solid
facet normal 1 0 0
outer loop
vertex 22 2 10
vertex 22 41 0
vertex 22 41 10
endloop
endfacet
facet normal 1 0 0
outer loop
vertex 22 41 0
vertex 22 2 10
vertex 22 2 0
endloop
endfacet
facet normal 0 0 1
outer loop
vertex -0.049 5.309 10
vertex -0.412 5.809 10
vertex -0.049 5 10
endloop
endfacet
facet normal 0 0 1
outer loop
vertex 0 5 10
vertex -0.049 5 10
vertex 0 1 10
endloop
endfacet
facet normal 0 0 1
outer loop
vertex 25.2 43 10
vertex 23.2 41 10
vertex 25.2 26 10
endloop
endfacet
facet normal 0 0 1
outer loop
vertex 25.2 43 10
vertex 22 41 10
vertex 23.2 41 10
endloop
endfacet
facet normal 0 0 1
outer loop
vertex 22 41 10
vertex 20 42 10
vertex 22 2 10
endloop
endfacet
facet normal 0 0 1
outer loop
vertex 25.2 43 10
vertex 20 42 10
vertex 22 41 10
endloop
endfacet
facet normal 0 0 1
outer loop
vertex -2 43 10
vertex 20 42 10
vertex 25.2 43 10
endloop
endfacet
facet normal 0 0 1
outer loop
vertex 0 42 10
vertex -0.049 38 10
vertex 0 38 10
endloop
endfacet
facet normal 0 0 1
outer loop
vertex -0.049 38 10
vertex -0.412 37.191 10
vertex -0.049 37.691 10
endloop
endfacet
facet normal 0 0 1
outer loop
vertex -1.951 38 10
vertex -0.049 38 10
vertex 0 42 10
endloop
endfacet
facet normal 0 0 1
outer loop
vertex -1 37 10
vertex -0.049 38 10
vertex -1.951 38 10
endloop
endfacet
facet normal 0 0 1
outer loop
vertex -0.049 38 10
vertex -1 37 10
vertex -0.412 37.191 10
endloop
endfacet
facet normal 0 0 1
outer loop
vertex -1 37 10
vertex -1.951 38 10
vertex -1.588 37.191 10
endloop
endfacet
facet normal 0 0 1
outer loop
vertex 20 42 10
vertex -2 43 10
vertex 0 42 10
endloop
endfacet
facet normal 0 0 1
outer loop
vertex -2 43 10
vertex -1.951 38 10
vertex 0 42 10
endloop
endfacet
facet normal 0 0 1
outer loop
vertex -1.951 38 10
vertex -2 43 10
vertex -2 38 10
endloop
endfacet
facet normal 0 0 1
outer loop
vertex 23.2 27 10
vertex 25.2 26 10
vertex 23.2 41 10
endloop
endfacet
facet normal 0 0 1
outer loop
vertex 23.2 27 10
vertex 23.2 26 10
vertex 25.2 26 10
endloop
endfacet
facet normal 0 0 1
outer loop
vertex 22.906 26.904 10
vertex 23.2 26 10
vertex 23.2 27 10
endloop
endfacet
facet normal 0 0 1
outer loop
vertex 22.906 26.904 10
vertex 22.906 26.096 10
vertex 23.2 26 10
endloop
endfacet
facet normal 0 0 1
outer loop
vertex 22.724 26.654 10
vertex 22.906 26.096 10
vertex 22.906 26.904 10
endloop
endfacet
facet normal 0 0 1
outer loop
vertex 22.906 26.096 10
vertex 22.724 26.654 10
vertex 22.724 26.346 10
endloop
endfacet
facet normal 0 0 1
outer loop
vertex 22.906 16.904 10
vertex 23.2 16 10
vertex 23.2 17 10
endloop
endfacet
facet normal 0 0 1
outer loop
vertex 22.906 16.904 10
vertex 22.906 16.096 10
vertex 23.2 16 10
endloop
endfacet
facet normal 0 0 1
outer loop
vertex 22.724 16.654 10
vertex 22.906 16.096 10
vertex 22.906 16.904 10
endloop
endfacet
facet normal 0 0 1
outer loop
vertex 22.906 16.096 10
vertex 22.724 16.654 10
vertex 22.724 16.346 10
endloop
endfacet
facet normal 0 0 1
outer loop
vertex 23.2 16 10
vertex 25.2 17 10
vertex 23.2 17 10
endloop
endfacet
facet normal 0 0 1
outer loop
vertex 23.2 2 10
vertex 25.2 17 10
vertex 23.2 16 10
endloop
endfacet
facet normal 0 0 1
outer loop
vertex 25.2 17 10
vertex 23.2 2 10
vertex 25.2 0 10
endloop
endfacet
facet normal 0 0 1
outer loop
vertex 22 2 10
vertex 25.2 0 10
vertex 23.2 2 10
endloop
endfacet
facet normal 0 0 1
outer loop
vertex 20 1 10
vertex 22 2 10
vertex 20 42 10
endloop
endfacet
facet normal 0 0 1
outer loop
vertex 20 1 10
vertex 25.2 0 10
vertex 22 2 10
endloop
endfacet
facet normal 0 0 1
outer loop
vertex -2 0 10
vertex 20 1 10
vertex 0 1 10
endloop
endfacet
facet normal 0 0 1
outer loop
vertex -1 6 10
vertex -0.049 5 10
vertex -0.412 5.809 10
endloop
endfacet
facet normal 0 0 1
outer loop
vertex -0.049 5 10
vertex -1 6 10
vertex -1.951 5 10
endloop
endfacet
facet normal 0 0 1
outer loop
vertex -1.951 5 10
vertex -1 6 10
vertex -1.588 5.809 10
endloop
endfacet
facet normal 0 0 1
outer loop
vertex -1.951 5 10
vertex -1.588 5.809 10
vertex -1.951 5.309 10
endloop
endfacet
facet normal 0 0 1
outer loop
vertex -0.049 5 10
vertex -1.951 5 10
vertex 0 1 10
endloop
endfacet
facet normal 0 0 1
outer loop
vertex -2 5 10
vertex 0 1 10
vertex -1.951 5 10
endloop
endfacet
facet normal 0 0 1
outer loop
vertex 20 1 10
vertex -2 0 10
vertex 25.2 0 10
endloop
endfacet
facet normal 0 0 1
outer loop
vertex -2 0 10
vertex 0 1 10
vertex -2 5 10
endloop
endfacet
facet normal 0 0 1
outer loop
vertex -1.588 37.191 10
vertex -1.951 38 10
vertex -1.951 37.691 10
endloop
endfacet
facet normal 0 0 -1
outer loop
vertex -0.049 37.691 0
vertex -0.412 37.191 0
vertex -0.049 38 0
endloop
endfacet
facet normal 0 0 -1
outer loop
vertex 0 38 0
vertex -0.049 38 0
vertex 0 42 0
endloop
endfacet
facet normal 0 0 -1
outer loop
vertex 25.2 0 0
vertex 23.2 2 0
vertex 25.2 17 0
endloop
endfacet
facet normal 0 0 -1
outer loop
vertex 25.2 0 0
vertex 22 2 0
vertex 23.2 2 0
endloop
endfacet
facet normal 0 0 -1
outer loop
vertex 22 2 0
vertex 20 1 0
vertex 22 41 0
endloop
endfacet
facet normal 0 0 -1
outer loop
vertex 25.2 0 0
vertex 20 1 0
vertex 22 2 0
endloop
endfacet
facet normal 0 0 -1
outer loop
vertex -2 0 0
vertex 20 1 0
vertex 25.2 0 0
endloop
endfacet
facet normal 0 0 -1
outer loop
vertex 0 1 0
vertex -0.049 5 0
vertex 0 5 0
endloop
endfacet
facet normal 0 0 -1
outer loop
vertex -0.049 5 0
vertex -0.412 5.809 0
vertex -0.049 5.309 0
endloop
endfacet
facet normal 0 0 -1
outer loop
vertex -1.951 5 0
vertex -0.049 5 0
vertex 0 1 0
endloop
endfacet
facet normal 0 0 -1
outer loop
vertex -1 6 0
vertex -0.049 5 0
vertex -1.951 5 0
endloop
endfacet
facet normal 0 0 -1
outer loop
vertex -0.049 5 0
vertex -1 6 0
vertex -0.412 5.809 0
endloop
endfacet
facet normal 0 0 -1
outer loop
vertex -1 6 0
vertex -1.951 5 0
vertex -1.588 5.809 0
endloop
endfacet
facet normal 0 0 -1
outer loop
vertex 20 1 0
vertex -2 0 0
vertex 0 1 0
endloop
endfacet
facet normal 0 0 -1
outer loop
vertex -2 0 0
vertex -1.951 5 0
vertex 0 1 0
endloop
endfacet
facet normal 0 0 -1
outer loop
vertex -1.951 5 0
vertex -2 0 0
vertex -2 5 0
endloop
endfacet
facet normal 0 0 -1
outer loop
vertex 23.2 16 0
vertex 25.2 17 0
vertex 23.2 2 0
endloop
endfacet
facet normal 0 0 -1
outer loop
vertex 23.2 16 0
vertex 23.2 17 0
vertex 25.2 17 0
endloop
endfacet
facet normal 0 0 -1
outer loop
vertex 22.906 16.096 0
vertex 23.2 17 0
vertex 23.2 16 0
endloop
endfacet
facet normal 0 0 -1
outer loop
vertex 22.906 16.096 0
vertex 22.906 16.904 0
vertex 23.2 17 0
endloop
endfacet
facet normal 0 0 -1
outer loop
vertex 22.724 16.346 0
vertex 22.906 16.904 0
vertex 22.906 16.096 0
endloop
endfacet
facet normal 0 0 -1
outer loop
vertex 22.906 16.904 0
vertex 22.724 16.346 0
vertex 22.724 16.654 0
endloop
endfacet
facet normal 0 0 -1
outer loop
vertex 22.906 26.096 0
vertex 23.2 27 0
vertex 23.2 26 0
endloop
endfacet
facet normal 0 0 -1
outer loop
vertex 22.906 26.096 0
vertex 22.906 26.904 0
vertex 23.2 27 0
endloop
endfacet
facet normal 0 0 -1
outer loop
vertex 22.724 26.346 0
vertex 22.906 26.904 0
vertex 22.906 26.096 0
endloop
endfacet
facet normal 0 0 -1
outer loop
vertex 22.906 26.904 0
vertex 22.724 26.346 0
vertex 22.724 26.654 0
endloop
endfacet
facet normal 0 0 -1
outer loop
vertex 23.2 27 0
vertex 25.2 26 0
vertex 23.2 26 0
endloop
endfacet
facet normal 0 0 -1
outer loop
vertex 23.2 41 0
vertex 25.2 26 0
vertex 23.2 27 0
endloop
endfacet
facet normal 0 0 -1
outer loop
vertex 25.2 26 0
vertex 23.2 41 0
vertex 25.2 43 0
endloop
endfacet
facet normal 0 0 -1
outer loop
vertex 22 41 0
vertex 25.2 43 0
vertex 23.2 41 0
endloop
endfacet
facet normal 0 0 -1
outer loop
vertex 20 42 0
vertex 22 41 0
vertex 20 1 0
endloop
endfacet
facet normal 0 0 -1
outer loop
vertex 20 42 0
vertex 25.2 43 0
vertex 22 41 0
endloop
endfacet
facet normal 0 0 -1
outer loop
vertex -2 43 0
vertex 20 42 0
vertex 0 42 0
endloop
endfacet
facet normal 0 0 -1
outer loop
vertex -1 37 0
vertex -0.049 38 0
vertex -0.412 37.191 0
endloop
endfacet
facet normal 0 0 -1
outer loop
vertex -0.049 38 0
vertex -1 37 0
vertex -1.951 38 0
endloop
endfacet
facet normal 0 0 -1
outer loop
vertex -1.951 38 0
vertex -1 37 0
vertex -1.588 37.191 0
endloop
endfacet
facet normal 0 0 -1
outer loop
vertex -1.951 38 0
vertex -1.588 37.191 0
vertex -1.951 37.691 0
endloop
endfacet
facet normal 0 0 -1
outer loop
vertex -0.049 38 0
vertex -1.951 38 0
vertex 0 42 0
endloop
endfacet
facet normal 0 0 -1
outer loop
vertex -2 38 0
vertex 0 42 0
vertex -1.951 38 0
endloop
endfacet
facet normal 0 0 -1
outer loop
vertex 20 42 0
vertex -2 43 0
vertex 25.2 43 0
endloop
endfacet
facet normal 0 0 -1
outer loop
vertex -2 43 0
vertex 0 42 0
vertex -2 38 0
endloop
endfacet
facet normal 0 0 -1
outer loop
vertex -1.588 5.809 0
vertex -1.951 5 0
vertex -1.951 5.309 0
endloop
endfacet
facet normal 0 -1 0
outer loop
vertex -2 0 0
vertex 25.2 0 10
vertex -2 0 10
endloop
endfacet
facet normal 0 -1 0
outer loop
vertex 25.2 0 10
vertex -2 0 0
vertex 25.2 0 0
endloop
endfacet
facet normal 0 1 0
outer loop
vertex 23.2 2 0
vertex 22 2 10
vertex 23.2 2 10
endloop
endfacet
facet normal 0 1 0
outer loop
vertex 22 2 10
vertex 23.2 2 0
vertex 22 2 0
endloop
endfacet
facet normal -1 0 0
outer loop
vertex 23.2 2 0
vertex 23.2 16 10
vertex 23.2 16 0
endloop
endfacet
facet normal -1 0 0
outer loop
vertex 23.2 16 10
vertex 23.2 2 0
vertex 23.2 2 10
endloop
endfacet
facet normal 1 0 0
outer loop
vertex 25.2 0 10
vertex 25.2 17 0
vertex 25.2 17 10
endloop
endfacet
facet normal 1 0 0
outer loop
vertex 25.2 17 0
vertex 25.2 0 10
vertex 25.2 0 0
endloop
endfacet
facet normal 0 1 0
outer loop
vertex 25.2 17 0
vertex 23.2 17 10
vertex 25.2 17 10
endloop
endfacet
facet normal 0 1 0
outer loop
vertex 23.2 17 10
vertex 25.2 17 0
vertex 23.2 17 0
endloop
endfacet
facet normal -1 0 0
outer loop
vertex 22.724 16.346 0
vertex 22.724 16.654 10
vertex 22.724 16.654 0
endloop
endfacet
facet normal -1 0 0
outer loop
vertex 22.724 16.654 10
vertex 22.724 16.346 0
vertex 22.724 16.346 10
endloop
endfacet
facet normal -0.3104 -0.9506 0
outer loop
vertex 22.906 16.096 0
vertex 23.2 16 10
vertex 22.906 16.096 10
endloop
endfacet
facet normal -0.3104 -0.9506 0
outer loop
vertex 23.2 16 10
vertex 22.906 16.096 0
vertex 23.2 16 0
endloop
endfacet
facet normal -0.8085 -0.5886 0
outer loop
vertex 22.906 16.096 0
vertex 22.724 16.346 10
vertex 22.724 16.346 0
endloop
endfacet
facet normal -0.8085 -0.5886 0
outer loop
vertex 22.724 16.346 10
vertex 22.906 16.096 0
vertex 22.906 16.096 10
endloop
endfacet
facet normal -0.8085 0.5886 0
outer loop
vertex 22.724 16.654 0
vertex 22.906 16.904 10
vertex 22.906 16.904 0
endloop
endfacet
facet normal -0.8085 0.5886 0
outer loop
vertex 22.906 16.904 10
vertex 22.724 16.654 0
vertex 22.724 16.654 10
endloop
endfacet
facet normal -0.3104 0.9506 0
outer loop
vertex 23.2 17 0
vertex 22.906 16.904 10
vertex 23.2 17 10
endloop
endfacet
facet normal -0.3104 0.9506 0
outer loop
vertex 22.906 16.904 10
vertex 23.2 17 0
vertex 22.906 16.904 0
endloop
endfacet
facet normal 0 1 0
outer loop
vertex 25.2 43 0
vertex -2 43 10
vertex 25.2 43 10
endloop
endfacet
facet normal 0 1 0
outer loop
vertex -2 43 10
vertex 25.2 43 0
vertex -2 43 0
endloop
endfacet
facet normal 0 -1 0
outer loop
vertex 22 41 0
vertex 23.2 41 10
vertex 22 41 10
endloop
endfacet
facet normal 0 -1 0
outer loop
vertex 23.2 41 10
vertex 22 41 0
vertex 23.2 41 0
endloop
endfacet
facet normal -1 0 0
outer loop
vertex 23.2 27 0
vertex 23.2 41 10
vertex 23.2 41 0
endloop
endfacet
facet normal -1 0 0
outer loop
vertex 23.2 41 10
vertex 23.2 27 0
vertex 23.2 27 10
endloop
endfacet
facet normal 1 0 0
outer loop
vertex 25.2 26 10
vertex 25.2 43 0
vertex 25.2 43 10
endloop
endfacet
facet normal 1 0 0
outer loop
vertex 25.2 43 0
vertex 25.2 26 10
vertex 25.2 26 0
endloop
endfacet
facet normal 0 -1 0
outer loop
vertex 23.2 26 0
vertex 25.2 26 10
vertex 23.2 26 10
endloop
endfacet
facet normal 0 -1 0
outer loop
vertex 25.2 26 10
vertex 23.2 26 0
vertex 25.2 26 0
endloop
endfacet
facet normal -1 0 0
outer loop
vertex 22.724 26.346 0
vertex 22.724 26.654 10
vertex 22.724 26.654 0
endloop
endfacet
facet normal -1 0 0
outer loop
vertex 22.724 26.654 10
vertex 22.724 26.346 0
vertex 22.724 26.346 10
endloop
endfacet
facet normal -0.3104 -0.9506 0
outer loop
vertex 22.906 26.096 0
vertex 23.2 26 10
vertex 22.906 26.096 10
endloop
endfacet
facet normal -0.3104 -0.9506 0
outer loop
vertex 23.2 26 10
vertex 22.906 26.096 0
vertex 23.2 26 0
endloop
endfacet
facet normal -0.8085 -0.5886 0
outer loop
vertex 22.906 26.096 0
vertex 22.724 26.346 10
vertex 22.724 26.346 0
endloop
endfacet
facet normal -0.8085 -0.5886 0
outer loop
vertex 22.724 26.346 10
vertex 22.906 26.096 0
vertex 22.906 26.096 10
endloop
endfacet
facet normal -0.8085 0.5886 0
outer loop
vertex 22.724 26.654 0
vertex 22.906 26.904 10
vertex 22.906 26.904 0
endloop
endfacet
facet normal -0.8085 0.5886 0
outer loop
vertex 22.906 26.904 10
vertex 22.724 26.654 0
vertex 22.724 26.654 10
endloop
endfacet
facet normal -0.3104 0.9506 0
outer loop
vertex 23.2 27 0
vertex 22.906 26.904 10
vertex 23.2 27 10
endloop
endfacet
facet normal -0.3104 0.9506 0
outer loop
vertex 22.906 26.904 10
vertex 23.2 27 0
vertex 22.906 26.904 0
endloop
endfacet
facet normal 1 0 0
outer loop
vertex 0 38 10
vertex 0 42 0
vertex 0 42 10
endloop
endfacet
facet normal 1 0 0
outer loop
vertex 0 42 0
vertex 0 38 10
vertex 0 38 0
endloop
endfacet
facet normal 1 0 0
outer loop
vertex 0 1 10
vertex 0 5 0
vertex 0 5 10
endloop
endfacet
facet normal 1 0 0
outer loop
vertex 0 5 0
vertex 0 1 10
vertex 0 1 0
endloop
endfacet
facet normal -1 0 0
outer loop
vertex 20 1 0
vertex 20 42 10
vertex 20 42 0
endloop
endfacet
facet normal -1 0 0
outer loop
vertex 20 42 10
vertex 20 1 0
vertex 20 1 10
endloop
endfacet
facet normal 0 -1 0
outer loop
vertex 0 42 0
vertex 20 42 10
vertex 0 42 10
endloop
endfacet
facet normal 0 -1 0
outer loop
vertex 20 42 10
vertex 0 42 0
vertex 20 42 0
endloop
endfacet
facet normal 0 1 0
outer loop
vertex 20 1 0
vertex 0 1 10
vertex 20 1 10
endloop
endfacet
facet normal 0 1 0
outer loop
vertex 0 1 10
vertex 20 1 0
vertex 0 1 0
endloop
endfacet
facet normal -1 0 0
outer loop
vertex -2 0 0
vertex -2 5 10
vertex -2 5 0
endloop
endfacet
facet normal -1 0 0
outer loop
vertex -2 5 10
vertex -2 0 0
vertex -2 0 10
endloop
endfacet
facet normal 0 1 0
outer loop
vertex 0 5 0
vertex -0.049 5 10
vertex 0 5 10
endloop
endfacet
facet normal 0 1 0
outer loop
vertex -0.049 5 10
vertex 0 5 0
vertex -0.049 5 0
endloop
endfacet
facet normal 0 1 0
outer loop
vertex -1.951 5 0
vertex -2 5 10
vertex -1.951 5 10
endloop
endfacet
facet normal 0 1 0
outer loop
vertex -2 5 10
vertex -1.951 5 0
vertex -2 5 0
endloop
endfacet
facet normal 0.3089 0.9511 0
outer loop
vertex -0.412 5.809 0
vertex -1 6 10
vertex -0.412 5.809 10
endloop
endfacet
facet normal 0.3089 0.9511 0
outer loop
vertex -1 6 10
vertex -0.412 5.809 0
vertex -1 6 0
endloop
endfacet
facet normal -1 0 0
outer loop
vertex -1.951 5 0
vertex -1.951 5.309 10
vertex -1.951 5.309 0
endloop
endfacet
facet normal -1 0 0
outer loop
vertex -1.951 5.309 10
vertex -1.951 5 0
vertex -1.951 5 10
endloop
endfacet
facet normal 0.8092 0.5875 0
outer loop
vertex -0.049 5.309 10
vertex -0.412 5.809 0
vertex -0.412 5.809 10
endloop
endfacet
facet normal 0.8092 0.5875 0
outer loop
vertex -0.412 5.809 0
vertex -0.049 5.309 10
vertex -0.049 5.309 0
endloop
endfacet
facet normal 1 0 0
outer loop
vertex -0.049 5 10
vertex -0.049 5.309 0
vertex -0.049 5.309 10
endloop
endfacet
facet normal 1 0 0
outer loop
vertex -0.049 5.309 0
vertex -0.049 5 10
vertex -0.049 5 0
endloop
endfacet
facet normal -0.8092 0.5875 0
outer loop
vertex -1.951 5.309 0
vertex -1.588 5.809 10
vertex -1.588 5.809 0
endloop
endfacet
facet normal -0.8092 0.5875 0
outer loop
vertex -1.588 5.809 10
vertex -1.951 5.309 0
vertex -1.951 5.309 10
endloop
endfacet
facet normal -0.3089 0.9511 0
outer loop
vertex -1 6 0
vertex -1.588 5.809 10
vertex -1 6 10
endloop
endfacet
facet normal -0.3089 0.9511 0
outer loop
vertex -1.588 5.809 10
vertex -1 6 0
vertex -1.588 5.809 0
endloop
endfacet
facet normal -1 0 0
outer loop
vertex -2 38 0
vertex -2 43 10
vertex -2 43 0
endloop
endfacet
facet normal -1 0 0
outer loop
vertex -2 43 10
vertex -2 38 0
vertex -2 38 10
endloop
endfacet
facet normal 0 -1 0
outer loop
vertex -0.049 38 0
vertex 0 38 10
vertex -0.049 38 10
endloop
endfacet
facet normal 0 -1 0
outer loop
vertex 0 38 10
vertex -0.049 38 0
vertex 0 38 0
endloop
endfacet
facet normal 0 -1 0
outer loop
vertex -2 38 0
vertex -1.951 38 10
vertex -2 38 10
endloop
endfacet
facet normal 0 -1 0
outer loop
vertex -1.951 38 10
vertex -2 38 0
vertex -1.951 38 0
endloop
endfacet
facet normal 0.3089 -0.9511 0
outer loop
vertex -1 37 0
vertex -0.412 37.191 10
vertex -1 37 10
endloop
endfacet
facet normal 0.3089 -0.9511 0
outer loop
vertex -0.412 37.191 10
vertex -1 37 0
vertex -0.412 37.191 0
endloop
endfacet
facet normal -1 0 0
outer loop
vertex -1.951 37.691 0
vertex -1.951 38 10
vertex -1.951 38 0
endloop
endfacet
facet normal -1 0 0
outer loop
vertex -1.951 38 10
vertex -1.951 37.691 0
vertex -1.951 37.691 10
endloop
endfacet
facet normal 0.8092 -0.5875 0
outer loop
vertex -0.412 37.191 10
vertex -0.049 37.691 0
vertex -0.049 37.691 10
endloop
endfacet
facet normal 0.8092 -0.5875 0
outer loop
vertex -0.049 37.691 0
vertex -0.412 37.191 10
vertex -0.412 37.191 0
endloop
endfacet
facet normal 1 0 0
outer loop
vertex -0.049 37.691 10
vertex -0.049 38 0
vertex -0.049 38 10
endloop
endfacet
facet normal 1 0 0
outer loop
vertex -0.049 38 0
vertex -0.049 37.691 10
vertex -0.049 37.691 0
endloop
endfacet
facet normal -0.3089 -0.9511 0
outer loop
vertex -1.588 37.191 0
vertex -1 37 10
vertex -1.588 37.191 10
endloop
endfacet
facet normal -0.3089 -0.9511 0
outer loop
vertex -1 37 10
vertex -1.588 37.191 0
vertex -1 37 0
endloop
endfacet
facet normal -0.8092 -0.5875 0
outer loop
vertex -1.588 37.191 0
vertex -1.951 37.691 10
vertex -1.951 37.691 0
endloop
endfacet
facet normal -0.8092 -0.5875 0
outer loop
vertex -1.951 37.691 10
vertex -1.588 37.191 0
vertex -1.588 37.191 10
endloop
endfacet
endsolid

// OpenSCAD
union() {
    difference() {
        union() {
            cube([22, 43, 10]);
            translate([22, 0, 0]) {
                cube([2.2, 2, 10]);
                translate([1.2, 0, 0]) {
                    cube([2, 17, 10]);
                };
                translate([1.2, 16.5, 0]) {
                    rotate([0,0,-90]) {
                        cylinder($fn=10, h=10, r1=0.5, r2=0.5);
                    }
                };
                translate([0, 41, 0]) {
                    cube([2.2, 2, 10]);
                };
                translate([1.2, 26, 0]) {
                    cube([2, 17, 10]);
                };
                translate([1.2, 26.5, 0]) {
                    rotate([0,0,-90]) {
                        cylinder($fn=10, h=10, r1=0.5, r2=0.5);
                    }
                };
            };
        };
        union() {
            translate([-1,1,-1]) {
                cube([21, 41, 12]);
            };
        }
    };
    translate([-2, 0, 0]) {
        cube([2, 5, 10]);
    };
    translate([-1, 5, 0]) {
        rotate([0,0,-90]) {
            cylinder($fn=10, h=10, r1=1, r2=1);
        }
    };
    translate([-2, 38, 0]) {
        cube([2, 5, 10]);
    };
    translate([-1, 38, 0]) {
        rotate([0,0,-90]) {
            cylinder($fn=10, h=10, r1=1, r2=1);
        }
    };
}
